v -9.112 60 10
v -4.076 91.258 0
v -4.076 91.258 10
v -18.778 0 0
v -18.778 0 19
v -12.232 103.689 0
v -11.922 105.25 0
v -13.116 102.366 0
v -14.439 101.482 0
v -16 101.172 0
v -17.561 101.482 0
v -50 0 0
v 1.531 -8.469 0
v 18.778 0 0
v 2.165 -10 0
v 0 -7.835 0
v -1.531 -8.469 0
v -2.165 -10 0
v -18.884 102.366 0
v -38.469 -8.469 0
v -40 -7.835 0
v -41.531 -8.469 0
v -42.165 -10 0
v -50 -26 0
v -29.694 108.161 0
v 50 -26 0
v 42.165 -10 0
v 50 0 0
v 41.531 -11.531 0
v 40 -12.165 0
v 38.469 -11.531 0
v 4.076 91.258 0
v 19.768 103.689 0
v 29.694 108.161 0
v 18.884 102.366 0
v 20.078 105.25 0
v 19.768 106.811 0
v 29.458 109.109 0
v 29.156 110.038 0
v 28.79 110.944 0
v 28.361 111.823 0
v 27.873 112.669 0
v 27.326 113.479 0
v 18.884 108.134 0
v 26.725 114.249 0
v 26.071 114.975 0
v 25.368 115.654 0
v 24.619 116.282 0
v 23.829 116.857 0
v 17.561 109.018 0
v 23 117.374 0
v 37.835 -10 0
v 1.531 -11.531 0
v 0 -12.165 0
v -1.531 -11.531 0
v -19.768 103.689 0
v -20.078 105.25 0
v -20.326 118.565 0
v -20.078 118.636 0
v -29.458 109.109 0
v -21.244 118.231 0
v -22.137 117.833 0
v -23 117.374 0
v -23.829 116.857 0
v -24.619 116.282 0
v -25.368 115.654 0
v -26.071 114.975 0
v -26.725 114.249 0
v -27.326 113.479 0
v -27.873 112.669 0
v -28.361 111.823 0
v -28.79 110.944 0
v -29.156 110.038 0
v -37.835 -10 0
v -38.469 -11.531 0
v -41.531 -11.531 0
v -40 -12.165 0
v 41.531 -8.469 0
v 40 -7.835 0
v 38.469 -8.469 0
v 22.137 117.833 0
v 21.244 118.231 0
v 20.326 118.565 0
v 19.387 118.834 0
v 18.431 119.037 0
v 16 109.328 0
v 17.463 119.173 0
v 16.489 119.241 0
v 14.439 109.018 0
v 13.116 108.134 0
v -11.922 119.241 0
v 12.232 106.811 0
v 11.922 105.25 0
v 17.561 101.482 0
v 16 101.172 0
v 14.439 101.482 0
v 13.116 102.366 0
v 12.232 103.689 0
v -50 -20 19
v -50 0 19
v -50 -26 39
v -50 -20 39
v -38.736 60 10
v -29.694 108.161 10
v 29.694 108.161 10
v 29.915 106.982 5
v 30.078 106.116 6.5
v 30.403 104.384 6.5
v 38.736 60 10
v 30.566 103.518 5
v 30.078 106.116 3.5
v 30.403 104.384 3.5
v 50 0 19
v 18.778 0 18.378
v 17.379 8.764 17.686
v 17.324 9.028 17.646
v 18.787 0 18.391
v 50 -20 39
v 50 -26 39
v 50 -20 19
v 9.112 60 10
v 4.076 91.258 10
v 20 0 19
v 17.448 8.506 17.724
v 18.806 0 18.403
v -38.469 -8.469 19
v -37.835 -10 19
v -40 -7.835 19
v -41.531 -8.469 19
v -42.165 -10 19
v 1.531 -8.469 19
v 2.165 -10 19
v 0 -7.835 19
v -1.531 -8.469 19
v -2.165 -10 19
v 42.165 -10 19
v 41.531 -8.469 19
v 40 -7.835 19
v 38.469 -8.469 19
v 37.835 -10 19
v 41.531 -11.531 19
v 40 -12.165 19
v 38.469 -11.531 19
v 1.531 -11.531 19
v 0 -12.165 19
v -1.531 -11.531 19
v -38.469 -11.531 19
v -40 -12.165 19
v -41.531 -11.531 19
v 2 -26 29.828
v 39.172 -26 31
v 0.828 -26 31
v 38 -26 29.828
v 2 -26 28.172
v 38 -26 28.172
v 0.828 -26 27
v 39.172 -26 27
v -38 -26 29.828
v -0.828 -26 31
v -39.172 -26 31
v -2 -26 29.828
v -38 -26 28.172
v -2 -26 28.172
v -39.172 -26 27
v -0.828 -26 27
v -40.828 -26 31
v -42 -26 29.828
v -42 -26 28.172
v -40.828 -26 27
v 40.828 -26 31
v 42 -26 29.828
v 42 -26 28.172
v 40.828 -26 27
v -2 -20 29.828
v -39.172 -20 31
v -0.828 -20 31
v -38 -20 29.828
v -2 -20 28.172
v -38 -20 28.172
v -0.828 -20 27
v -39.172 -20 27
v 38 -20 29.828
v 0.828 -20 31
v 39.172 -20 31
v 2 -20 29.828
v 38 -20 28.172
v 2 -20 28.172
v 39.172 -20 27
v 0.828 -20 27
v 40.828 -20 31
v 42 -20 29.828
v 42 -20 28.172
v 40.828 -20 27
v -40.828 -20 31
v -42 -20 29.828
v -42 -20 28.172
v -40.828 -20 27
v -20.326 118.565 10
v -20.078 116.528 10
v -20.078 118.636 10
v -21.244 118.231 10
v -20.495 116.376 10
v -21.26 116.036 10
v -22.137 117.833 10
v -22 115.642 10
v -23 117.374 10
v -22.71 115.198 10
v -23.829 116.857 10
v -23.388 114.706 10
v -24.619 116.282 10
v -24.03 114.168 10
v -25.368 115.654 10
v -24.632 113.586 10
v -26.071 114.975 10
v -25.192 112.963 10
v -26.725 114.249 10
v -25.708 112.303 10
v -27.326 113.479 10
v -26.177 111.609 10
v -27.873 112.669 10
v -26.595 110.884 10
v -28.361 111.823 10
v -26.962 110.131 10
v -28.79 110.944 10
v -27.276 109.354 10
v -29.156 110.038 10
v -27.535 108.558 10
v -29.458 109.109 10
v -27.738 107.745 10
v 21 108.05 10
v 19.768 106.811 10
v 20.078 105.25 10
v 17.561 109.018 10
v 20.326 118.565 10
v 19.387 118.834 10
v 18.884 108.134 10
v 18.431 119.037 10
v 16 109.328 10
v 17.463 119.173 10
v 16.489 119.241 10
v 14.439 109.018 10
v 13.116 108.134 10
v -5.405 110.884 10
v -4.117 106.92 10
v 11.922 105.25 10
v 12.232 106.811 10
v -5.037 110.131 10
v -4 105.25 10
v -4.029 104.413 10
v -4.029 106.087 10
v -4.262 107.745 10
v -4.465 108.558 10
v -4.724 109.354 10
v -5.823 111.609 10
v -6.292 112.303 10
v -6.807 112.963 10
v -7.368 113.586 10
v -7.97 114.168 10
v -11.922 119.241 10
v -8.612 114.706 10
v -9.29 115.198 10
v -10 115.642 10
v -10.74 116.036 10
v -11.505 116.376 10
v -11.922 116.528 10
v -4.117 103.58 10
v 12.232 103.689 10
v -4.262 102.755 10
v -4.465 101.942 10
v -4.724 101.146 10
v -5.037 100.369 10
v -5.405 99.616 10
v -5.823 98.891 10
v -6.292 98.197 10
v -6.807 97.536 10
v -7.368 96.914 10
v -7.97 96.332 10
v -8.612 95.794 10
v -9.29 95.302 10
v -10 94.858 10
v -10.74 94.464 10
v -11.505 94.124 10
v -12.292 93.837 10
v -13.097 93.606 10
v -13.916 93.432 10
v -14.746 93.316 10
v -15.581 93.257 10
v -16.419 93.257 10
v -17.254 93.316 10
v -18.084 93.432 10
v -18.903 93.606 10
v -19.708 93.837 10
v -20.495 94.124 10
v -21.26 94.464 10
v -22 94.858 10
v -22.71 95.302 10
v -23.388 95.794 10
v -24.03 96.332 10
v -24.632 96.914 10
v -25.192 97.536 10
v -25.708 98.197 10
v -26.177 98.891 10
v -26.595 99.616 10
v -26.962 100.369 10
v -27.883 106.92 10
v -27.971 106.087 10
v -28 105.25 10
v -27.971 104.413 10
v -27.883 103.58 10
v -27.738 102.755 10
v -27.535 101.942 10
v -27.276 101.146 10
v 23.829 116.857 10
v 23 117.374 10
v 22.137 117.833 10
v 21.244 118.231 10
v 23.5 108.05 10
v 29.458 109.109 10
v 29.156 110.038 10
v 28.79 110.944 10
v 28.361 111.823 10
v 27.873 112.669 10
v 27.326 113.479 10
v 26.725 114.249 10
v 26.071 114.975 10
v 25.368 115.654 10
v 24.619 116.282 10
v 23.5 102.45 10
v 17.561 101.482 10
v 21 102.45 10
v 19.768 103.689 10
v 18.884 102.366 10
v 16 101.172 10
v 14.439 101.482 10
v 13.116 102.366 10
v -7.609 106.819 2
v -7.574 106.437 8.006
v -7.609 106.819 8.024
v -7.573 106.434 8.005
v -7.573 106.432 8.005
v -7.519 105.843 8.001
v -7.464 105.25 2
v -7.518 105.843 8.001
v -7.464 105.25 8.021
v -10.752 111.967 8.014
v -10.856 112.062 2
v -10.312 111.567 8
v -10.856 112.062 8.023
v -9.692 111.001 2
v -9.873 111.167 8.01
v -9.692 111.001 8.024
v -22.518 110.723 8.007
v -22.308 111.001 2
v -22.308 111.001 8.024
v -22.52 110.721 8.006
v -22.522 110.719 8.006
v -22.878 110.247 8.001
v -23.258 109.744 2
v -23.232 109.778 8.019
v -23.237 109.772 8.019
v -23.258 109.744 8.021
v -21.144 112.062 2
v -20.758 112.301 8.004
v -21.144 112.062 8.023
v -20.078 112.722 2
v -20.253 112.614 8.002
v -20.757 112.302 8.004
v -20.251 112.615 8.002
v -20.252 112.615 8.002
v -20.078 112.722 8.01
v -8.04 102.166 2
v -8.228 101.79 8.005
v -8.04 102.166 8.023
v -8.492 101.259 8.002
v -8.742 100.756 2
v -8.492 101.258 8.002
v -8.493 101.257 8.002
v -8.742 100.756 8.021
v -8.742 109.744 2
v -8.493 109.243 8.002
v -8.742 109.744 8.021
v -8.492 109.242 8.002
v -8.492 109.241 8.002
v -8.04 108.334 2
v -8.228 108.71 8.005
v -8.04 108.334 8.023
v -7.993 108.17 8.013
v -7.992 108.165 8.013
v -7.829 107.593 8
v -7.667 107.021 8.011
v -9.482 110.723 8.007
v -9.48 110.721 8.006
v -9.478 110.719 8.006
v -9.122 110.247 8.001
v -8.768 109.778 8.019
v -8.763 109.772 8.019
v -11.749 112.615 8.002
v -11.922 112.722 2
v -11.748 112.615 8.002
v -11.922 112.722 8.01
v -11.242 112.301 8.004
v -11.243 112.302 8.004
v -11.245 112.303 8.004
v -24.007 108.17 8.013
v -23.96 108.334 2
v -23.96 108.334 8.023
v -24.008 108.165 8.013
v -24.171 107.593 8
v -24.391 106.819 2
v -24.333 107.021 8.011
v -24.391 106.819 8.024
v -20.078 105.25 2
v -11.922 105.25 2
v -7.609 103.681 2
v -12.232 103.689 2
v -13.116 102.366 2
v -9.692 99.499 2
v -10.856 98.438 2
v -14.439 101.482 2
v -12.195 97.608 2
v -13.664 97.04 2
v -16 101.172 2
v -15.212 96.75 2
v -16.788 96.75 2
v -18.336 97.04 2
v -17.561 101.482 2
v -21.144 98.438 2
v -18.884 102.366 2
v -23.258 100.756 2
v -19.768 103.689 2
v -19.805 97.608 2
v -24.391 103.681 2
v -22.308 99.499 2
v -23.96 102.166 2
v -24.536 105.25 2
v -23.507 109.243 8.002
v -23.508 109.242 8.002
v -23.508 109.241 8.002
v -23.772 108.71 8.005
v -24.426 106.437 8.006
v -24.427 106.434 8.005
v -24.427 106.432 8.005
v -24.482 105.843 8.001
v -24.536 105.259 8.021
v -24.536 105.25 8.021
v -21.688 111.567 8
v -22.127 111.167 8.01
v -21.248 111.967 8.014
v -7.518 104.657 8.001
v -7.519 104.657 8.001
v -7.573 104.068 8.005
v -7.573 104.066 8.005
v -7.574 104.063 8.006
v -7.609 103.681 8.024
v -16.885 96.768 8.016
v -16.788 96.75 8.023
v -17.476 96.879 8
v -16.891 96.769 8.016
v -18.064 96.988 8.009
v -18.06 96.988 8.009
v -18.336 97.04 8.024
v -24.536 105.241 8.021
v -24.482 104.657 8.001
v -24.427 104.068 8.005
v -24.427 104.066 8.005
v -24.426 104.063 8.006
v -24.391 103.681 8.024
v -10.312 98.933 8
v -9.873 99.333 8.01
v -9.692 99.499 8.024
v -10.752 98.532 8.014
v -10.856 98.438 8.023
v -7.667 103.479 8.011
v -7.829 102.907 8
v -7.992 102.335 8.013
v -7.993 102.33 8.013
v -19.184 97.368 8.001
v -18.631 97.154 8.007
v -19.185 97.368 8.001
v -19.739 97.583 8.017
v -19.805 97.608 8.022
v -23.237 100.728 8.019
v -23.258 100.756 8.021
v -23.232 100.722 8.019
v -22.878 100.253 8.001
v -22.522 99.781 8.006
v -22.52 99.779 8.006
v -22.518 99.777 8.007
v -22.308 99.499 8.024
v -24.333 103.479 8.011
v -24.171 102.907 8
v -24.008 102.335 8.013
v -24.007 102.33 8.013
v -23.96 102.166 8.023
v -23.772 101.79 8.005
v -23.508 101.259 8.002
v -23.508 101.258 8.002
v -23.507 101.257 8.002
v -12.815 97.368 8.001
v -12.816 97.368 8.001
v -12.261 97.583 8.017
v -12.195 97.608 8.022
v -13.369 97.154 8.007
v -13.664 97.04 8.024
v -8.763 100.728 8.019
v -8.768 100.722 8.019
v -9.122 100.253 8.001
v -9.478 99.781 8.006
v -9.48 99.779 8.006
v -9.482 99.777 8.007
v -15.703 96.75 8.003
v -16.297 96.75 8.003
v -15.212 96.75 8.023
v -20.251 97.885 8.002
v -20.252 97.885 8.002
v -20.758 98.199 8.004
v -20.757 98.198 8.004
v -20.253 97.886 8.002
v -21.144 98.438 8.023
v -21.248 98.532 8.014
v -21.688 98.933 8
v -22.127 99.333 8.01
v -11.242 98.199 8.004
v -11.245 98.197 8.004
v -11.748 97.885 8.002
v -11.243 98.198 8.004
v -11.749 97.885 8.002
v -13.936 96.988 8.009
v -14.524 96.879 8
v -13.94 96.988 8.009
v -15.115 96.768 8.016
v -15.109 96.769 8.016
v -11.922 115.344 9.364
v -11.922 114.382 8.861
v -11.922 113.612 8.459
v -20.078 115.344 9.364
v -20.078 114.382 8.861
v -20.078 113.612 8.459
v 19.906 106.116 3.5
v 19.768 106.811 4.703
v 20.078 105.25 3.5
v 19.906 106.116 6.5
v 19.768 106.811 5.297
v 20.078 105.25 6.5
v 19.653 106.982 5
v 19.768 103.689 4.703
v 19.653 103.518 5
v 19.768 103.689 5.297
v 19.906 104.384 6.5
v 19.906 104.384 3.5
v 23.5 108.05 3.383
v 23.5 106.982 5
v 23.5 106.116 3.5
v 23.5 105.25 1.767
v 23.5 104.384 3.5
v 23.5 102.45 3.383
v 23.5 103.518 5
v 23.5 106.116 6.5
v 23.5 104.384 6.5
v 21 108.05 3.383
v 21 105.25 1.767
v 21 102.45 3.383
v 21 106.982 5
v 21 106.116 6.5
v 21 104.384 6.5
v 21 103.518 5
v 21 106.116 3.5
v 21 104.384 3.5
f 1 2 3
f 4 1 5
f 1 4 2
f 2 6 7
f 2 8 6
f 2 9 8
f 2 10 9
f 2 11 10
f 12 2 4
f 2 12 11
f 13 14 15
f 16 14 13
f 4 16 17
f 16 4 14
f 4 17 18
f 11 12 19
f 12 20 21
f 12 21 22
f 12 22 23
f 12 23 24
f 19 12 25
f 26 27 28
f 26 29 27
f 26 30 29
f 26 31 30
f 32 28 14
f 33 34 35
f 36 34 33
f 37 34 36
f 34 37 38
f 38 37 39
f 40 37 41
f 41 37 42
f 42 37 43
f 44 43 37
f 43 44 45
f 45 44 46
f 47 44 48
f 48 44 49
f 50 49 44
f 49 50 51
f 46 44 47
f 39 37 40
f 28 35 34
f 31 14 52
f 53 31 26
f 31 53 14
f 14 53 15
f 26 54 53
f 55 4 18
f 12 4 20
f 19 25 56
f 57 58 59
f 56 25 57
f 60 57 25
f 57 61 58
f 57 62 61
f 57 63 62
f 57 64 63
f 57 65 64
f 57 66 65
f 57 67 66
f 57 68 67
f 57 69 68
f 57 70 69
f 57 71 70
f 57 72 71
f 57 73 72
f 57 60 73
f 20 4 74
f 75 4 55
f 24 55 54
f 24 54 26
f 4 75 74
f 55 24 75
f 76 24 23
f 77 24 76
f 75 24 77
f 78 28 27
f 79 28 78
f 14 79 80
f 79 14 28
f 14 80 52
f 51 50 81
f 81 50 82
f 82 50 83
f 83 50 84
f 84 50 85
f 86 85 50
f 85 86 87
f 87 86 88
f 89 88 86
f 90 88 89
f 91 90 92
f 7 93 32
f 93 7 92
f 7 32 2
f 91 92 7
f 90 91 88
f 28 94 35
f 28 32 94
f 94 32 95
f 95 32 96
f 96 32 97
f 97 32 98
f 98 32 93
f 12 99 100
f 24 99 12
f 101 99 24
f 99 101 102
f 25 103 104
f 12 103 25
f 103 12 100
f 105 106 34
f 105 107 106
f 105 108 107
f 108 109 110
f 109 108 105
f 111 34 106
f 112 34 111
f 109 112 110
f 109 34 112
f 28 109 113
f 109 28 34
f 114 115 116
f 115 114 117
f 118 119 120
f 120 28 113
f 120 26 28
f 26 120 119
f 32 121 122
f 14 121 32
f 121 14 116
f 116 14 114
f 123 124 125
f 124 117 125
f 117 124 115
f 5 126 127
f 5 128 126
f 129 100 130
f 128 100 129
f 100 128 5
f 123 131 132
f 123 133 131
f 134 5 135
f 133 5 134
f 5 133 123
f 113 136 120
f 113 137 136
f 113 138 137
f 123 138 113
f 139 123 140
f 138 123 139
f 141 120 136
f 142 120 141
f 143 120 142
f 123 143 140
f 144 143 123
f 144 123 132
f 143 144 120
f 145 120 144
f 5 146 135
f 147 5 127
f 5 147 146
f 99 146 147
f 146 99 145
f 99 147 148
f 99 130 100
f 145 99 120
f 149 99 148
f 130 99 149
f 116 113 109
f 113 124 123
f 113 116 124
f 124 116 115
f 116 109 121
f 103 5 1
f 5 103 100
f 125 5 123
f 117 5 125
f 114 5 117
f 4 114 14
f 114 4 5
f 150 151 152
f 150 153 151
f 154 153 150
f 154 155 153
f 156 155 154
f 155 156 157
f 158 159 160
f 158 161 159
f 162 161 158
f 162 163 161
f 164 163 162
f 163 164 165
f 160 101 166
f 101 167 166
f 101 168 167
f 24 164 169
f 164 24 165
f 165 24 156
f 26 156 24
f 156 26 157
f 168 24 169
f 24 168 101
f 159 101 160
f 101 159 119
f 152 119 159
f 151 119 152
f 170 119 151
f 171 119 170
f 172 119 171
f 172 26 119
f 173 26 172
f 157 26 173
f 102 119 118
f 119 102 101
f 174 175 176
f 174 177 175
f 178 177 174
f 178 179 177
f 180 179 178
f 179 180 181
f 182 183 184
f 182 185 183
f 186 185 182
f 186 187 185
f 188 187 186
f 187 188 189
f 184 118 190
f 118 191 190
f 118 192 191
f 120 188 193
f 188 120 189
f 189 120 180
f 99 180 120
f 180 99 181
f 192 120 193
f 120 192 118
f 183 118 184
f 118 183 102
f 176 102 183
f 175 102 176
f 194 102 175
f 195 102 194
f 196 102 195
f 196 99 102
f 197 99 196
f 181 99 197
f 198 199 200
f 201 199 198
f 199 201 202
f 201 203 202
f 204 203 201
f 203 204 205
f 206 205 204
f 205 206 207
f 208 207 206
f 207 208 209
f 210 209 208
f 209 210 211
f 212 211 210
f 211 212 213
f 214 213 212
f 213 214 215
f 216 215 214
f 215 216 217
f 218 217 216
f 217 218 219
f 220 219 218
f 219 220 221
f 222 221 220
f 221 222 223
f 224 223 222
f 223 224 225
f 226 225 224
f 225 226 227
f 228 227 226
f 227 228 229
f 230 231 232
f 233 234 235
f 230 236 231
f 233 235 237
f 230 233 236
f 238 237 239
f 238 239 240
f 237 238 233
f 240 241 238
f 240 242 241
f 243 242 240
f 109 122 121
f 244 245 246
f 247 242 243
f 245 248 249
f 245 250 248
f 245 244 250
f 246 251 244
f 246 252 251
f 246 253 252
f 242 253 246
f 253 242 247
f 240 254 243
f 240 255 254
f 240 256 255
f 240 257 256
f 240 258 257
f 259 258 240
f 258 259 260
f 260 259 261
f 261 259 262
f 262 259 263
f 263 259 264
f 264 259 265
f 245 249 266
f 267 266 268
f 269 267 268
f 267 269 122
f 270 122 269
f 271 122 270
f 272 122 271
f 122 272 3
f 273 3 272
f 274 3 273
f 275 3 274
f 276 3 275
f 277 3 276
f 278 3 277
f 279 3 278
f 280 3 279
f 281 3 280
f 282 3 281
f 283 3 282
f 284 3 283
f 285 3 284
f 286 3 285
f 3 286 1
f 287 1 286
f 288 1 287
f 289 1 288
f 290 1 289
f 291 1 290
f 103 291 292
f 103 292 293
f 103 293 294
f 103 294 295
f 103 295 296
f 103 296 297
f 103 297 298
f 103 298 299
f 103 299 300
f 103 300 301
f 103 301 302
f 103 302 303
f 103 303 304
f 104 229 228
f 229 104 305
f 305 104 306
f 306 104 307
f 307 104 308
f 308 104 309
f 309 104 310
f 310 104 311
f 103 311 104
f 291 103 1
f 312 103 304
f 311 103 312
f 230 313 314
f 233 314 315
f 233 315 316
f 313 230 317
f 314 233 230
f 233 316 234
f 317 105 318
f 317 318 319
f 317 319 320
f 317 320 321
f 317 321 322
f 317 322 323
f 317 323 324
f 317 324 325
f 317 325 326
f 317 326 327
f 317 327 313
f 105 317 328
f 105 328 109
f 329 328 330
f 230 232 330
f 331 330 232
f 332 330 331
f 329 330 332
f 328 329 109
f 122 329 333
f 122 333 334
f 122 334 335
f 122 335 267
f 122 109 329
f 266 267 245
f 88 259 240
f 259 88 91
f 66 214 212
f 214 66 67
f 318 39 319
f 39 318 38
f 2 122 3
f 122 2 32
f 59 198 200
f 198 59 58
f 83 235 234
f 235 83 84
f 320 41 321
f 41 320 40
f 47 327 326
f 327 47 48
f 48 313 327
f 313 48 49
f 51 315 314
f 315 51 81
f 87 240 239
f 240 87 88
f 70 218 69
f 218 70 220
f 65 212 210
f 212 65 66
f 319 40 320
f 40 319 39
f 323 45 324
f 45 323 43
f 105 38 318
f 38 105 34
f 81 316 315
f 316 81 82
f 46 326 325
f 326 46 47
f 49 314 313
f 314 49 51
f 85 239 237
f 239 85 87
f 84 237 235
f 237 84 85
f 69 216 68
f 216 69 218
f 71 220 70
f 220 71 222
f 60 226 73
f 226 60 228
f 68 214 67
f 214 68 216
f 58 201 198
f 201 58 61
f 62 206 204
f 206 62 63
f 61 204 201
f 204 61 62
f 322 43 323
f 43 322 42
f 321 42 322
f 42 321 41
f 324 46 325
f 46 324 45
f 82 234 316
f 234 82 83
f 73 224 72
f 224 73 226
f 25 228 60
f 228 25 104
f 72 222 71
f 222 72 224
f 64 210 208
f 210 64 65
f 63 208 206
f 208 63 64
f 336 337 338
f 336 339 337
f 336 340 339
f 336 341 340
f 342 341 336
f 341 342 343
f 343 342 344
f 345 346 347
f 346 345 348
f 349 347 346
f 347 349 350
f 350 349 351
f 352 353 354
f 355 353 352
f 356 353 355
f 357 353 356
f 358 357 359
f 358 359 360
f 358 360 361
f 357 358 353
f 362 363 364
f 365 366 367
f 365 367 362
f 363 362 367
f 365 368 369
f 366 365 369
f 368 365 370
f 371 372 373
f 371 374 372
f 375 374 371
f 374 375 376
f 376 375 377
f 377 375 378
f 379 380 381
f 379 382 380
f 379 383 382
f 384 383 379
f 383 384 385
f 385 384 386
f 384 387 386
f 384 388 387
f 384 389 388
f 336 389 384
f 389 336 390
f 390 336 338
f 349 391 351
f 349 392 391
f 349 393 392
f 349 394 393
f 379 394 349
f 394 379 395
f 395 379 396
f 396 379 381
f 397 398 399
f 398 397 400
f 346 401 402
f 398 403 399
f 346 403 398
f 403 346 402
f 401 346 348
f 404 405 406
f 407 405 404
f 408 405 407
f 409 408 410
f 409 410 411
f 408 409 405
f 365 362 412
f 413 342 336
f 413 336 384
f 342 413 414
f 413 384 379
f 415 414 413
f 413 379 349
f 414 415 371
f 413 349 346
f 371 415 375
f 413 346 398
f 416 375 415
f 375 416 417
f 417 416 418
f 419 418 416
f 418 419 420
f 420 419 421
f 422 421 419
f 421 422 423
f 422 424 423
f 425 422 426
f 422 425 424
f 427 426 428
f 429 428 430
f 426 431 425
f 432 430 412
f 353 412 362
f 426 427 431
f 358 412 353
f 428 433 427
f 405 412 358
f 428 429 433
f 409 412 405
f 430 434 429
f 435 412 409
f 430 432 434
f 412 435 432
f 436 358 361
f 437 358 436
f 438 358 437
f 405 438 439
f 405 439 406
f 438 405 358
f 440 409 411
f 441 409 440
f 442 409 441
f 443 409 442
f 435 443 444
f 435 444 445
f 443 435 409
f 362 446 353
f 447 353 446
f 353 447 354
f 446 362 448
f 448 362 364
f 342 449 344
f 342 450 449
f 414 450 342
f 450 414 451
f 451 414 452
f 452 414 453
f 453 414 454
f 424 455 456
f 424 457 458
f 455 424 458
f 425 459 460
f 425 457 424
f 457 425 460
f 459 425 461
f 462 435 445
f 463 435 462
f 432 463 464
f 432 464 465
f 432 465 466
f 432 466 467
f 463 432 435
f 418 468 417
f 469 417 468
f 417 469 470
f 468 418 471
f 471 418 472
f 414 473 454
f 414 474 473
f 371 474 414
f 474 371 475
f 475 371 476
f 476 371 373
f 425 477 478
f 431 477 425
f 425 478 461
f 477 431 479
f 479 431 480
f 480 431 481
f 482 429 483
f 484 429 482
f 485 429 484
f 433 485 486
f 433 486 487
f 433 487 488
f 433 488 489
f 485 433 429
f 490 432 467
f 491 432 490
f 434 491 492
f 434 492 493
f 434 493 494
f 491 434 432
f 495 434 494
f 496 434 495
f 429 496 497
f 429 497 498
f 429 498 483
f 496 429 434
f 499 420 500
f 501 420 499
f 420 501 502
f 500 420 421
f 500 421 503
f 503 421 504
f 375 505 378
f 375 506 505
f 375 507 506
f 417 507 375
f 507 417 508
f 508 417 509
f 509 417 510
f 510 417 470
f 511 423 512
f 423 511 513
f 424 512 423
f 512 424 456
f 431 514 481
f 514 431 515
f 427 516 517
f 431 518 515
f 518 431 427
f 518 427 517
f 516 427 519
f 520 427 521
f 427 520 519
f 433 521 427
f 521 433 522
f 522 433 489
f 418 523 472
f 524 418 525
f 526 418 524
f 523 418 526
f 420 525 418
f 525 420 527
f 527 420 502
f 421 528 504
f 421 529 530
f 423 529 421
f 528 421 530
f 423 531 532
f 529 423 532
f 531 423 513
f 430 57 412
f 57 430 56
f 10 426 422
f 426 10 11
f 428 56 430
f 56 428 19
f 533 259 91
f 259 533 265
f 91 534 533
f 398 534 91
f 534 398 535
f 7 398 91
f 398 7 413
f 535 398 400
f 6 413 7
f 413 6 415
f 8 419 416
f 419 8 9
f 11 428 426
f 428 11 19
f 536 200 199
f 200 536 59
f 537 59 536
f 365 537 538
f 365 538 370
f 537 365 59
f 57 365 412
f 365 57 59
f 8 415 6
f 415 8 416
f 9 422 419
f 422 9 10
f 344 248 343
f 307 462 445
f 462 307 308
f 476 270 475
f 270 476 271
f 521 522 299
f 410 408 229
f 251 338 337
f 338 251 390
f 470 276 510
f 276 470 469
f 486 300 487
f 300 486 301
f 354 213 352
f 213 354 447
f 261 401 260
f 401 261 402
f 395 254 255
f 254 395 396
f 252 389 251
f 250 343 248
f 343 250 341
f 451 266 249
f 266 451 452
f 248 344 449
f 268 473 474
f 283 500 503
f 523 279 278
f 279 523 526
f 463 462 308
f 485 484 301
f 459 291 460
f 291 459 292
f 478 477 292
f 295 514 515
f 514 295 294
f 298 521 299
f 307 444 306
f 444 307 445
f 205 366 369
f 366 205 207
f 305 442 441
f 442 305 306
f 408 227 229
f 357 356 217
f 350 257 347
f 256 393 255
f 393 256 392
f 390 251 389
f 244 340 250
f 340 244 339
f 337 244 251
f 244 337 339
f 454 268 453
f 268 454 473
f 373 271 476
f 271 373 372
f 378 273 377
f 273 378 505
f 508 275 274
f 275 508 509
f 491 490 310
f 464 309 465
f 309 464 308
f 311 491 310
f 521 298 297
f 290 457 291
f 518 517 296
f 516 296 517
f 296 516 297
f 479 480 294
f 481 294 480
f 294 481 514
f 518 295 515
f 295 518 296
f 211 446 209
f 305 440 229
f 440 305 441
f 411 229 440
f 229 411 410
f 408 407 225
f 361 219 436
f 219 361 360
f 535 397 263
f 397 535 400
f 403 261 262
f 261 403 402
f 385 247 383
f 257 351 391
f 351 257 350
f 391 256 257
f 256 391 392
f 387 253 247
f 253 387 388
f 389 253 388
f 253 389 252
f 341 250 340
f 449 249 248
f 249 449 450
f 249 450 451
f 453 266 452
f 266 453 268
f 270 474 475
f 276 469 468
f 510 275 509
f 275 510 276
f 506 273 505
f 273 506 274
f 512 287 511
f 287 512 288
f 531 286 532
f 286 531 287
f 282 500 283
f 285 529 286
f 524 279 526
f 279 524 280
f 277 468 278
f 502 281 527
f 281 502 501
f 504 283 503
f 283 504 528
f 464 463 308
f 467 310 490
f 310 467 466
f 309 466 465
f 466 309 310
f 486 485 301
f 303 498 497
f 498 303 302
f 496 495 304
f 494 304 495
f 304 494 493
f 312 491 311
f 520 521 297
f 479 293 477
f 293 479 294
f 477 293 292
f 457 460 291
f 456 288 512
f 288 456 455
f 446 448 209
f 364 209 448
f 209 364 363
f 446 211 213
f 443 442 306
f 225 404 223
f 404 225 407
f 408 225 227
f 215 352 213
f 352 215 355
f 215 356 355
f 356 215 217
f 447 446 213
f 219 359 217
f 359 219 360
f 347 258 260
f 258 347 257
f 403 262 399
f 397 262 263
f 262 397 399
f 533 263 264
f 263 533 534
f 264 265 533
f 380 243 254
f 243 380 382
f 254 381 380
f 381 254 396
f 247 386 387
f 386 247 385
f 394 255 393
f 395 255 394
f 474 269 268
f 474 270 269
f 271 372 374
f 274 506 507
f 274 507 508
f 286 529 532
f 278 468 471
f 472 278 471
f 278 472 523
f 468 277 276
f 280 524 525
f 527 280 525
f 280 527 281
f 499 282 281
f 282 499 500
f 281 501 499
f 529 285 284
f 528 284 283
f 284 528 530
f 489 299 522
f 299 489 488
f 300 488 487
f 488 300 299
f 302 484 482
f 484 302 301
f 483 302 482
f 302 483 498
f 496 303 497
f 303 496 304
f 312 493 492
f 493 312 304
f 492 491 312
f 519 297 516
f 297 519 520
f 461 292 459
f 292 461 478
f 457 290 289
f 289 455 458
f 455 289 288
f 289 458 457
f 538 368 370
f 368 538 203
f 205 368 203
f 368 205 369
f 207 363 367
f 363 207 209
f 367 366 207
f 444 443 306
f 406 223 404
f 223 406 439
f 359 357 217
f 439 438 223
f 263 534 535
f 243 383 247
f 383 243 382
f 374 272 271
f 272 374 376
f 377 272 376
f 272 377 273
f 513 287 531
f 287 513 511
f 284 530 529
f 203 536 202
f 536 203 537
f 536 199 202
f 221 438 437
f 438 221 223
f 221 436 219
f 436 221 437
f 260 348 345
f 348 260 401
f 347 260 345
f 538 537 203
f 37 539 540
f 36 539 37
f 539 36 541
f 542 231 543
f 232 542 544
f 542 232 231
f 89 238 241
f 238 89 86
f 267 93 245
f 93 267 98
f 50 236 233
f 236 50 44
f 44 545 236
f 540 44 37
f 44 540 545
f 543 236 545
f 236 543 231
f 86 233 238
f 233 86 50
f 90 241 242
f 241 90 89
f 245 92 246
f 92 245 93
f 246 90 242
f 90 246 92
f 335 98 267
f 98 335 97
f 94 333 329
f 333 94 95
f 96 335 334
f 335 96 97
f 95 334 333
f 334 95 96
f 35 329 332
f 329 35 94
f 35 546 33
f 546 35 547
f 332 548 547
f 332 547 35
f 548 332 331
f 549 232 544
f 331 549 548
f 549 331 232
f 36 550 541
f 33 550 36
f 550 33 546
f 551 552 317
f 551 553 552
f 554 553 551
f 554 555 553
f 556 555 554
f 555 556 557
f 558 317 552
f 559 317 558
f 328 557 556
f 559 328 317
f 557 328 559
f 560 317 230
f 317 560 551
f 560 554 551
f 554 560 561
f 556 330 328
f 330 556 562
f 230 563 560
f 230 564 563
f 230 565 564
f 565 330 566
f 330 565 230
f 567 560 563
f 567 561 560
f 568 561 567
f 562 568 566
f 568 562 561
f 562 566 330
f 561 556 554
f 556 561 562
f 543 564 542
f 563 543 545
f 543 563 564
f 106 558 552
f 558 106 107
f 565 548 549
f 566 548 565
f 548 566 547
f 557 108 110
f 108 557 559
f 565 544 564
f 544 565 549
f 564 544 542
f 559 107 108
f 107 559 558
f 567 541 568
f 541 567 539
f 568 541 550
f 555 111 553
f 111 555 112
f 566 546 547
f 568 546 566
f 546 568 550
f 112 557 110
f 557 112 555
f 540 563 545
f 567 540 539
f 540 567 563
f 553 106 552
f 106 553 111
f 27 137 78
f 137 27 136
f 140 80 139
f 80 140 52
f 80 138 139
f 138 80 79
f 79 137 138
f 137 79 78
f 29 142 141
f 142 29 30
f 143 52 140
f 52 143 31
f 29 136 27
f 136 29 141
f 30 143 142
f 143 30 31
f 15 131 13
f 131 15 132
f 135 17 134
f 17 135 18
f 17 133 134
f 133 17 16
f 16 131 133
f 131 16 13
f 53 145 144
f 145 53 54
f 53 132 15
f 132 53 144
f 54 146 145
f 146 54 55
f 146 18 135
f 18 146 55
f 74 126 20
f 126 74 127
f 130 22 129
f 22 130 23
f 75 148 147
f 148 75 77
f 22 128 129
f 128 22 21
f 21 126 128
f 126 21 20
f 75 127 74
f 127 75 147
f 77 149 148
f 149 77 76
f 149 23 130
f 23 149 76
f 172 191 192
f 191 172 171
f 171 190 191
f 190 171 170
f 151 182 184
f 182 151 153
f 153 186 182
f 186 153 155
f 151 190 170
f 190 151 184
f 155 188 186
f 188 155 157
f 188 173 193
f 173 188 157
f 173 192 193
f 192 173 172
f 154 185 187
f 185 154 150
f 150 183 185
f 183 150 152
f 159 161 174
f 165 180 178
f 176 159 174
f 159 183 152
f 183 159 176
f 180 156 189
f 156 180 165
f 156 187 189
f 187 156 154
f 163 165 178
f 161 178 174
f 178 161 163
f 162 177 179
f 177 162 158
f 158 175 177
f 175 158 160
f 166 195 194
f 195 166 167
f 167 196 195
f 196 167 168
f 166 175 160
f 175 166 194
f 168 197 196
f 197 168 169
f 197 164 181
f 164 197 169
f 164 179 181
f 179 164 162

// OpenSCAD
// file: nutShape.scad
// a nut shape that takes height and width across flats as input.

nutShape(6, 3);

module nutShape(w, h)
{
    rotate_extrude($fn = 6)
        square([((w / 2) / (cos(30))), h], center = false);
}
// file: polyhole.scad
// The Cylinder is dead! Long live the Cylinder!
// A module for a polyhole by radius, based on Nophead's work.

module polyhole(h, r, cent = false)
{
    n = max(round(4 * r), 3);
    cylinder(h = h, r = r / cos(180 / n), $fn = n, center = cent);
}
// main file
// A mount to support the vertical linear rod and lead screw on the part 
//  of the machine that has the shorter distance from the frame to the rod 
//  due to the position of the extruder on the carriage.

use<polyhole.scad>
use<nutShape.scad>

distToRod = 105.25;

difference()
{
    union()
    {
        translate([0, -13, 9.5])
            cube([100, 26, 19], center = true);
        translate([0, -23, 19.5])
            cube([100, 6, 39], center = true);
        hull()
        {
            translate([-16, distToRod, 0])
                cylinder(h = 10, r = 14, $fn = 90);
            translate([16, distToRod, 0])
                cylinder(h = 10, r = 14, $fn = 90);

        }
        hull()
        {
            translate([-16, distToRod, 0])
                cylinder(h = 10, r = 14, $fn = 90);
            translate([-36, -10, 5])
                cube([28, 20, 10], center = true);
        }
        hull()
        {
            translate([16, distToRod, 0])
                cylinder(h = 10, r = 14, $fn = 90);
            translate([36, -10, 5])
                cube([28, 20, 10], center = true);
        }
        intersection()
        {
            hull()
            {
                translate([0, -13, 9.5])
                    cube([100, 26, 19], center = true);
                translate([0, 50, 5])
                    cube([100, 20, 10], center = true);
            }
            union()
            {
                hull()
                {
                    translate([-16, distToRod, 0])
                        cylinder(h = 20, r = 14, $fn = 90);
                    translate([-36, -10, 10])
                        cube([28, 20, 20], center = true);
                }
                hull()
                {
                    translate([16, distToRod, 0])
                        cylinder(h = 10, r = 14, $fn = 90);
                    translate([36, -10, 10])
                        cube([28, 20, 20], center = true);
                }
            }
        }
    }
    translate([-16, distToRod, 2])
        polyhole(8, 8.5);
    hull()
    {
        translate([-16, distToRod, 0])
            polyhole(10, 4);
        translate([-16, distToRod+20, 0])
            polyhole(10, 4);
    }
    translate([-16, distToRod, 8])
        cylinder(h = 2, r1 = 8.5, r2 = 12, $fn = 90);
    translate([16, distToRod, 0])
        polyhole(10, 4);
    hull()
    {
        translate([21, distToRod, 5])
            rotate([0, 90, 0])
                nutShape(5.6, 2.5);
        translate([21, distToRod, 10])
            rotate([0, 90, 0])
                nutShape(5.6, 2.5);
    }
    translate([16, distToRod, 5])
        rotate([90, 0, 90])
            polyhole(20, 1.5);
    translate([40, -10, 0])
        polyhole(25, 2);
    translate([0, -10, 0])
        polyhole(25, 2);
    translate([-40, -10, 0])
        polyhole(25, 2);
    translate([40, -20, 29])
        rotate([90, 22.5, 0])
            polyhole(6, 2);
    translate([0, -20, 29])
        rotate([90, 22.5, 0])
            polyhole(6, 2);
    translate([-40, -20, 29])
        rotate([90, 22.5, 0])
            polyhole(6, 2);
}
